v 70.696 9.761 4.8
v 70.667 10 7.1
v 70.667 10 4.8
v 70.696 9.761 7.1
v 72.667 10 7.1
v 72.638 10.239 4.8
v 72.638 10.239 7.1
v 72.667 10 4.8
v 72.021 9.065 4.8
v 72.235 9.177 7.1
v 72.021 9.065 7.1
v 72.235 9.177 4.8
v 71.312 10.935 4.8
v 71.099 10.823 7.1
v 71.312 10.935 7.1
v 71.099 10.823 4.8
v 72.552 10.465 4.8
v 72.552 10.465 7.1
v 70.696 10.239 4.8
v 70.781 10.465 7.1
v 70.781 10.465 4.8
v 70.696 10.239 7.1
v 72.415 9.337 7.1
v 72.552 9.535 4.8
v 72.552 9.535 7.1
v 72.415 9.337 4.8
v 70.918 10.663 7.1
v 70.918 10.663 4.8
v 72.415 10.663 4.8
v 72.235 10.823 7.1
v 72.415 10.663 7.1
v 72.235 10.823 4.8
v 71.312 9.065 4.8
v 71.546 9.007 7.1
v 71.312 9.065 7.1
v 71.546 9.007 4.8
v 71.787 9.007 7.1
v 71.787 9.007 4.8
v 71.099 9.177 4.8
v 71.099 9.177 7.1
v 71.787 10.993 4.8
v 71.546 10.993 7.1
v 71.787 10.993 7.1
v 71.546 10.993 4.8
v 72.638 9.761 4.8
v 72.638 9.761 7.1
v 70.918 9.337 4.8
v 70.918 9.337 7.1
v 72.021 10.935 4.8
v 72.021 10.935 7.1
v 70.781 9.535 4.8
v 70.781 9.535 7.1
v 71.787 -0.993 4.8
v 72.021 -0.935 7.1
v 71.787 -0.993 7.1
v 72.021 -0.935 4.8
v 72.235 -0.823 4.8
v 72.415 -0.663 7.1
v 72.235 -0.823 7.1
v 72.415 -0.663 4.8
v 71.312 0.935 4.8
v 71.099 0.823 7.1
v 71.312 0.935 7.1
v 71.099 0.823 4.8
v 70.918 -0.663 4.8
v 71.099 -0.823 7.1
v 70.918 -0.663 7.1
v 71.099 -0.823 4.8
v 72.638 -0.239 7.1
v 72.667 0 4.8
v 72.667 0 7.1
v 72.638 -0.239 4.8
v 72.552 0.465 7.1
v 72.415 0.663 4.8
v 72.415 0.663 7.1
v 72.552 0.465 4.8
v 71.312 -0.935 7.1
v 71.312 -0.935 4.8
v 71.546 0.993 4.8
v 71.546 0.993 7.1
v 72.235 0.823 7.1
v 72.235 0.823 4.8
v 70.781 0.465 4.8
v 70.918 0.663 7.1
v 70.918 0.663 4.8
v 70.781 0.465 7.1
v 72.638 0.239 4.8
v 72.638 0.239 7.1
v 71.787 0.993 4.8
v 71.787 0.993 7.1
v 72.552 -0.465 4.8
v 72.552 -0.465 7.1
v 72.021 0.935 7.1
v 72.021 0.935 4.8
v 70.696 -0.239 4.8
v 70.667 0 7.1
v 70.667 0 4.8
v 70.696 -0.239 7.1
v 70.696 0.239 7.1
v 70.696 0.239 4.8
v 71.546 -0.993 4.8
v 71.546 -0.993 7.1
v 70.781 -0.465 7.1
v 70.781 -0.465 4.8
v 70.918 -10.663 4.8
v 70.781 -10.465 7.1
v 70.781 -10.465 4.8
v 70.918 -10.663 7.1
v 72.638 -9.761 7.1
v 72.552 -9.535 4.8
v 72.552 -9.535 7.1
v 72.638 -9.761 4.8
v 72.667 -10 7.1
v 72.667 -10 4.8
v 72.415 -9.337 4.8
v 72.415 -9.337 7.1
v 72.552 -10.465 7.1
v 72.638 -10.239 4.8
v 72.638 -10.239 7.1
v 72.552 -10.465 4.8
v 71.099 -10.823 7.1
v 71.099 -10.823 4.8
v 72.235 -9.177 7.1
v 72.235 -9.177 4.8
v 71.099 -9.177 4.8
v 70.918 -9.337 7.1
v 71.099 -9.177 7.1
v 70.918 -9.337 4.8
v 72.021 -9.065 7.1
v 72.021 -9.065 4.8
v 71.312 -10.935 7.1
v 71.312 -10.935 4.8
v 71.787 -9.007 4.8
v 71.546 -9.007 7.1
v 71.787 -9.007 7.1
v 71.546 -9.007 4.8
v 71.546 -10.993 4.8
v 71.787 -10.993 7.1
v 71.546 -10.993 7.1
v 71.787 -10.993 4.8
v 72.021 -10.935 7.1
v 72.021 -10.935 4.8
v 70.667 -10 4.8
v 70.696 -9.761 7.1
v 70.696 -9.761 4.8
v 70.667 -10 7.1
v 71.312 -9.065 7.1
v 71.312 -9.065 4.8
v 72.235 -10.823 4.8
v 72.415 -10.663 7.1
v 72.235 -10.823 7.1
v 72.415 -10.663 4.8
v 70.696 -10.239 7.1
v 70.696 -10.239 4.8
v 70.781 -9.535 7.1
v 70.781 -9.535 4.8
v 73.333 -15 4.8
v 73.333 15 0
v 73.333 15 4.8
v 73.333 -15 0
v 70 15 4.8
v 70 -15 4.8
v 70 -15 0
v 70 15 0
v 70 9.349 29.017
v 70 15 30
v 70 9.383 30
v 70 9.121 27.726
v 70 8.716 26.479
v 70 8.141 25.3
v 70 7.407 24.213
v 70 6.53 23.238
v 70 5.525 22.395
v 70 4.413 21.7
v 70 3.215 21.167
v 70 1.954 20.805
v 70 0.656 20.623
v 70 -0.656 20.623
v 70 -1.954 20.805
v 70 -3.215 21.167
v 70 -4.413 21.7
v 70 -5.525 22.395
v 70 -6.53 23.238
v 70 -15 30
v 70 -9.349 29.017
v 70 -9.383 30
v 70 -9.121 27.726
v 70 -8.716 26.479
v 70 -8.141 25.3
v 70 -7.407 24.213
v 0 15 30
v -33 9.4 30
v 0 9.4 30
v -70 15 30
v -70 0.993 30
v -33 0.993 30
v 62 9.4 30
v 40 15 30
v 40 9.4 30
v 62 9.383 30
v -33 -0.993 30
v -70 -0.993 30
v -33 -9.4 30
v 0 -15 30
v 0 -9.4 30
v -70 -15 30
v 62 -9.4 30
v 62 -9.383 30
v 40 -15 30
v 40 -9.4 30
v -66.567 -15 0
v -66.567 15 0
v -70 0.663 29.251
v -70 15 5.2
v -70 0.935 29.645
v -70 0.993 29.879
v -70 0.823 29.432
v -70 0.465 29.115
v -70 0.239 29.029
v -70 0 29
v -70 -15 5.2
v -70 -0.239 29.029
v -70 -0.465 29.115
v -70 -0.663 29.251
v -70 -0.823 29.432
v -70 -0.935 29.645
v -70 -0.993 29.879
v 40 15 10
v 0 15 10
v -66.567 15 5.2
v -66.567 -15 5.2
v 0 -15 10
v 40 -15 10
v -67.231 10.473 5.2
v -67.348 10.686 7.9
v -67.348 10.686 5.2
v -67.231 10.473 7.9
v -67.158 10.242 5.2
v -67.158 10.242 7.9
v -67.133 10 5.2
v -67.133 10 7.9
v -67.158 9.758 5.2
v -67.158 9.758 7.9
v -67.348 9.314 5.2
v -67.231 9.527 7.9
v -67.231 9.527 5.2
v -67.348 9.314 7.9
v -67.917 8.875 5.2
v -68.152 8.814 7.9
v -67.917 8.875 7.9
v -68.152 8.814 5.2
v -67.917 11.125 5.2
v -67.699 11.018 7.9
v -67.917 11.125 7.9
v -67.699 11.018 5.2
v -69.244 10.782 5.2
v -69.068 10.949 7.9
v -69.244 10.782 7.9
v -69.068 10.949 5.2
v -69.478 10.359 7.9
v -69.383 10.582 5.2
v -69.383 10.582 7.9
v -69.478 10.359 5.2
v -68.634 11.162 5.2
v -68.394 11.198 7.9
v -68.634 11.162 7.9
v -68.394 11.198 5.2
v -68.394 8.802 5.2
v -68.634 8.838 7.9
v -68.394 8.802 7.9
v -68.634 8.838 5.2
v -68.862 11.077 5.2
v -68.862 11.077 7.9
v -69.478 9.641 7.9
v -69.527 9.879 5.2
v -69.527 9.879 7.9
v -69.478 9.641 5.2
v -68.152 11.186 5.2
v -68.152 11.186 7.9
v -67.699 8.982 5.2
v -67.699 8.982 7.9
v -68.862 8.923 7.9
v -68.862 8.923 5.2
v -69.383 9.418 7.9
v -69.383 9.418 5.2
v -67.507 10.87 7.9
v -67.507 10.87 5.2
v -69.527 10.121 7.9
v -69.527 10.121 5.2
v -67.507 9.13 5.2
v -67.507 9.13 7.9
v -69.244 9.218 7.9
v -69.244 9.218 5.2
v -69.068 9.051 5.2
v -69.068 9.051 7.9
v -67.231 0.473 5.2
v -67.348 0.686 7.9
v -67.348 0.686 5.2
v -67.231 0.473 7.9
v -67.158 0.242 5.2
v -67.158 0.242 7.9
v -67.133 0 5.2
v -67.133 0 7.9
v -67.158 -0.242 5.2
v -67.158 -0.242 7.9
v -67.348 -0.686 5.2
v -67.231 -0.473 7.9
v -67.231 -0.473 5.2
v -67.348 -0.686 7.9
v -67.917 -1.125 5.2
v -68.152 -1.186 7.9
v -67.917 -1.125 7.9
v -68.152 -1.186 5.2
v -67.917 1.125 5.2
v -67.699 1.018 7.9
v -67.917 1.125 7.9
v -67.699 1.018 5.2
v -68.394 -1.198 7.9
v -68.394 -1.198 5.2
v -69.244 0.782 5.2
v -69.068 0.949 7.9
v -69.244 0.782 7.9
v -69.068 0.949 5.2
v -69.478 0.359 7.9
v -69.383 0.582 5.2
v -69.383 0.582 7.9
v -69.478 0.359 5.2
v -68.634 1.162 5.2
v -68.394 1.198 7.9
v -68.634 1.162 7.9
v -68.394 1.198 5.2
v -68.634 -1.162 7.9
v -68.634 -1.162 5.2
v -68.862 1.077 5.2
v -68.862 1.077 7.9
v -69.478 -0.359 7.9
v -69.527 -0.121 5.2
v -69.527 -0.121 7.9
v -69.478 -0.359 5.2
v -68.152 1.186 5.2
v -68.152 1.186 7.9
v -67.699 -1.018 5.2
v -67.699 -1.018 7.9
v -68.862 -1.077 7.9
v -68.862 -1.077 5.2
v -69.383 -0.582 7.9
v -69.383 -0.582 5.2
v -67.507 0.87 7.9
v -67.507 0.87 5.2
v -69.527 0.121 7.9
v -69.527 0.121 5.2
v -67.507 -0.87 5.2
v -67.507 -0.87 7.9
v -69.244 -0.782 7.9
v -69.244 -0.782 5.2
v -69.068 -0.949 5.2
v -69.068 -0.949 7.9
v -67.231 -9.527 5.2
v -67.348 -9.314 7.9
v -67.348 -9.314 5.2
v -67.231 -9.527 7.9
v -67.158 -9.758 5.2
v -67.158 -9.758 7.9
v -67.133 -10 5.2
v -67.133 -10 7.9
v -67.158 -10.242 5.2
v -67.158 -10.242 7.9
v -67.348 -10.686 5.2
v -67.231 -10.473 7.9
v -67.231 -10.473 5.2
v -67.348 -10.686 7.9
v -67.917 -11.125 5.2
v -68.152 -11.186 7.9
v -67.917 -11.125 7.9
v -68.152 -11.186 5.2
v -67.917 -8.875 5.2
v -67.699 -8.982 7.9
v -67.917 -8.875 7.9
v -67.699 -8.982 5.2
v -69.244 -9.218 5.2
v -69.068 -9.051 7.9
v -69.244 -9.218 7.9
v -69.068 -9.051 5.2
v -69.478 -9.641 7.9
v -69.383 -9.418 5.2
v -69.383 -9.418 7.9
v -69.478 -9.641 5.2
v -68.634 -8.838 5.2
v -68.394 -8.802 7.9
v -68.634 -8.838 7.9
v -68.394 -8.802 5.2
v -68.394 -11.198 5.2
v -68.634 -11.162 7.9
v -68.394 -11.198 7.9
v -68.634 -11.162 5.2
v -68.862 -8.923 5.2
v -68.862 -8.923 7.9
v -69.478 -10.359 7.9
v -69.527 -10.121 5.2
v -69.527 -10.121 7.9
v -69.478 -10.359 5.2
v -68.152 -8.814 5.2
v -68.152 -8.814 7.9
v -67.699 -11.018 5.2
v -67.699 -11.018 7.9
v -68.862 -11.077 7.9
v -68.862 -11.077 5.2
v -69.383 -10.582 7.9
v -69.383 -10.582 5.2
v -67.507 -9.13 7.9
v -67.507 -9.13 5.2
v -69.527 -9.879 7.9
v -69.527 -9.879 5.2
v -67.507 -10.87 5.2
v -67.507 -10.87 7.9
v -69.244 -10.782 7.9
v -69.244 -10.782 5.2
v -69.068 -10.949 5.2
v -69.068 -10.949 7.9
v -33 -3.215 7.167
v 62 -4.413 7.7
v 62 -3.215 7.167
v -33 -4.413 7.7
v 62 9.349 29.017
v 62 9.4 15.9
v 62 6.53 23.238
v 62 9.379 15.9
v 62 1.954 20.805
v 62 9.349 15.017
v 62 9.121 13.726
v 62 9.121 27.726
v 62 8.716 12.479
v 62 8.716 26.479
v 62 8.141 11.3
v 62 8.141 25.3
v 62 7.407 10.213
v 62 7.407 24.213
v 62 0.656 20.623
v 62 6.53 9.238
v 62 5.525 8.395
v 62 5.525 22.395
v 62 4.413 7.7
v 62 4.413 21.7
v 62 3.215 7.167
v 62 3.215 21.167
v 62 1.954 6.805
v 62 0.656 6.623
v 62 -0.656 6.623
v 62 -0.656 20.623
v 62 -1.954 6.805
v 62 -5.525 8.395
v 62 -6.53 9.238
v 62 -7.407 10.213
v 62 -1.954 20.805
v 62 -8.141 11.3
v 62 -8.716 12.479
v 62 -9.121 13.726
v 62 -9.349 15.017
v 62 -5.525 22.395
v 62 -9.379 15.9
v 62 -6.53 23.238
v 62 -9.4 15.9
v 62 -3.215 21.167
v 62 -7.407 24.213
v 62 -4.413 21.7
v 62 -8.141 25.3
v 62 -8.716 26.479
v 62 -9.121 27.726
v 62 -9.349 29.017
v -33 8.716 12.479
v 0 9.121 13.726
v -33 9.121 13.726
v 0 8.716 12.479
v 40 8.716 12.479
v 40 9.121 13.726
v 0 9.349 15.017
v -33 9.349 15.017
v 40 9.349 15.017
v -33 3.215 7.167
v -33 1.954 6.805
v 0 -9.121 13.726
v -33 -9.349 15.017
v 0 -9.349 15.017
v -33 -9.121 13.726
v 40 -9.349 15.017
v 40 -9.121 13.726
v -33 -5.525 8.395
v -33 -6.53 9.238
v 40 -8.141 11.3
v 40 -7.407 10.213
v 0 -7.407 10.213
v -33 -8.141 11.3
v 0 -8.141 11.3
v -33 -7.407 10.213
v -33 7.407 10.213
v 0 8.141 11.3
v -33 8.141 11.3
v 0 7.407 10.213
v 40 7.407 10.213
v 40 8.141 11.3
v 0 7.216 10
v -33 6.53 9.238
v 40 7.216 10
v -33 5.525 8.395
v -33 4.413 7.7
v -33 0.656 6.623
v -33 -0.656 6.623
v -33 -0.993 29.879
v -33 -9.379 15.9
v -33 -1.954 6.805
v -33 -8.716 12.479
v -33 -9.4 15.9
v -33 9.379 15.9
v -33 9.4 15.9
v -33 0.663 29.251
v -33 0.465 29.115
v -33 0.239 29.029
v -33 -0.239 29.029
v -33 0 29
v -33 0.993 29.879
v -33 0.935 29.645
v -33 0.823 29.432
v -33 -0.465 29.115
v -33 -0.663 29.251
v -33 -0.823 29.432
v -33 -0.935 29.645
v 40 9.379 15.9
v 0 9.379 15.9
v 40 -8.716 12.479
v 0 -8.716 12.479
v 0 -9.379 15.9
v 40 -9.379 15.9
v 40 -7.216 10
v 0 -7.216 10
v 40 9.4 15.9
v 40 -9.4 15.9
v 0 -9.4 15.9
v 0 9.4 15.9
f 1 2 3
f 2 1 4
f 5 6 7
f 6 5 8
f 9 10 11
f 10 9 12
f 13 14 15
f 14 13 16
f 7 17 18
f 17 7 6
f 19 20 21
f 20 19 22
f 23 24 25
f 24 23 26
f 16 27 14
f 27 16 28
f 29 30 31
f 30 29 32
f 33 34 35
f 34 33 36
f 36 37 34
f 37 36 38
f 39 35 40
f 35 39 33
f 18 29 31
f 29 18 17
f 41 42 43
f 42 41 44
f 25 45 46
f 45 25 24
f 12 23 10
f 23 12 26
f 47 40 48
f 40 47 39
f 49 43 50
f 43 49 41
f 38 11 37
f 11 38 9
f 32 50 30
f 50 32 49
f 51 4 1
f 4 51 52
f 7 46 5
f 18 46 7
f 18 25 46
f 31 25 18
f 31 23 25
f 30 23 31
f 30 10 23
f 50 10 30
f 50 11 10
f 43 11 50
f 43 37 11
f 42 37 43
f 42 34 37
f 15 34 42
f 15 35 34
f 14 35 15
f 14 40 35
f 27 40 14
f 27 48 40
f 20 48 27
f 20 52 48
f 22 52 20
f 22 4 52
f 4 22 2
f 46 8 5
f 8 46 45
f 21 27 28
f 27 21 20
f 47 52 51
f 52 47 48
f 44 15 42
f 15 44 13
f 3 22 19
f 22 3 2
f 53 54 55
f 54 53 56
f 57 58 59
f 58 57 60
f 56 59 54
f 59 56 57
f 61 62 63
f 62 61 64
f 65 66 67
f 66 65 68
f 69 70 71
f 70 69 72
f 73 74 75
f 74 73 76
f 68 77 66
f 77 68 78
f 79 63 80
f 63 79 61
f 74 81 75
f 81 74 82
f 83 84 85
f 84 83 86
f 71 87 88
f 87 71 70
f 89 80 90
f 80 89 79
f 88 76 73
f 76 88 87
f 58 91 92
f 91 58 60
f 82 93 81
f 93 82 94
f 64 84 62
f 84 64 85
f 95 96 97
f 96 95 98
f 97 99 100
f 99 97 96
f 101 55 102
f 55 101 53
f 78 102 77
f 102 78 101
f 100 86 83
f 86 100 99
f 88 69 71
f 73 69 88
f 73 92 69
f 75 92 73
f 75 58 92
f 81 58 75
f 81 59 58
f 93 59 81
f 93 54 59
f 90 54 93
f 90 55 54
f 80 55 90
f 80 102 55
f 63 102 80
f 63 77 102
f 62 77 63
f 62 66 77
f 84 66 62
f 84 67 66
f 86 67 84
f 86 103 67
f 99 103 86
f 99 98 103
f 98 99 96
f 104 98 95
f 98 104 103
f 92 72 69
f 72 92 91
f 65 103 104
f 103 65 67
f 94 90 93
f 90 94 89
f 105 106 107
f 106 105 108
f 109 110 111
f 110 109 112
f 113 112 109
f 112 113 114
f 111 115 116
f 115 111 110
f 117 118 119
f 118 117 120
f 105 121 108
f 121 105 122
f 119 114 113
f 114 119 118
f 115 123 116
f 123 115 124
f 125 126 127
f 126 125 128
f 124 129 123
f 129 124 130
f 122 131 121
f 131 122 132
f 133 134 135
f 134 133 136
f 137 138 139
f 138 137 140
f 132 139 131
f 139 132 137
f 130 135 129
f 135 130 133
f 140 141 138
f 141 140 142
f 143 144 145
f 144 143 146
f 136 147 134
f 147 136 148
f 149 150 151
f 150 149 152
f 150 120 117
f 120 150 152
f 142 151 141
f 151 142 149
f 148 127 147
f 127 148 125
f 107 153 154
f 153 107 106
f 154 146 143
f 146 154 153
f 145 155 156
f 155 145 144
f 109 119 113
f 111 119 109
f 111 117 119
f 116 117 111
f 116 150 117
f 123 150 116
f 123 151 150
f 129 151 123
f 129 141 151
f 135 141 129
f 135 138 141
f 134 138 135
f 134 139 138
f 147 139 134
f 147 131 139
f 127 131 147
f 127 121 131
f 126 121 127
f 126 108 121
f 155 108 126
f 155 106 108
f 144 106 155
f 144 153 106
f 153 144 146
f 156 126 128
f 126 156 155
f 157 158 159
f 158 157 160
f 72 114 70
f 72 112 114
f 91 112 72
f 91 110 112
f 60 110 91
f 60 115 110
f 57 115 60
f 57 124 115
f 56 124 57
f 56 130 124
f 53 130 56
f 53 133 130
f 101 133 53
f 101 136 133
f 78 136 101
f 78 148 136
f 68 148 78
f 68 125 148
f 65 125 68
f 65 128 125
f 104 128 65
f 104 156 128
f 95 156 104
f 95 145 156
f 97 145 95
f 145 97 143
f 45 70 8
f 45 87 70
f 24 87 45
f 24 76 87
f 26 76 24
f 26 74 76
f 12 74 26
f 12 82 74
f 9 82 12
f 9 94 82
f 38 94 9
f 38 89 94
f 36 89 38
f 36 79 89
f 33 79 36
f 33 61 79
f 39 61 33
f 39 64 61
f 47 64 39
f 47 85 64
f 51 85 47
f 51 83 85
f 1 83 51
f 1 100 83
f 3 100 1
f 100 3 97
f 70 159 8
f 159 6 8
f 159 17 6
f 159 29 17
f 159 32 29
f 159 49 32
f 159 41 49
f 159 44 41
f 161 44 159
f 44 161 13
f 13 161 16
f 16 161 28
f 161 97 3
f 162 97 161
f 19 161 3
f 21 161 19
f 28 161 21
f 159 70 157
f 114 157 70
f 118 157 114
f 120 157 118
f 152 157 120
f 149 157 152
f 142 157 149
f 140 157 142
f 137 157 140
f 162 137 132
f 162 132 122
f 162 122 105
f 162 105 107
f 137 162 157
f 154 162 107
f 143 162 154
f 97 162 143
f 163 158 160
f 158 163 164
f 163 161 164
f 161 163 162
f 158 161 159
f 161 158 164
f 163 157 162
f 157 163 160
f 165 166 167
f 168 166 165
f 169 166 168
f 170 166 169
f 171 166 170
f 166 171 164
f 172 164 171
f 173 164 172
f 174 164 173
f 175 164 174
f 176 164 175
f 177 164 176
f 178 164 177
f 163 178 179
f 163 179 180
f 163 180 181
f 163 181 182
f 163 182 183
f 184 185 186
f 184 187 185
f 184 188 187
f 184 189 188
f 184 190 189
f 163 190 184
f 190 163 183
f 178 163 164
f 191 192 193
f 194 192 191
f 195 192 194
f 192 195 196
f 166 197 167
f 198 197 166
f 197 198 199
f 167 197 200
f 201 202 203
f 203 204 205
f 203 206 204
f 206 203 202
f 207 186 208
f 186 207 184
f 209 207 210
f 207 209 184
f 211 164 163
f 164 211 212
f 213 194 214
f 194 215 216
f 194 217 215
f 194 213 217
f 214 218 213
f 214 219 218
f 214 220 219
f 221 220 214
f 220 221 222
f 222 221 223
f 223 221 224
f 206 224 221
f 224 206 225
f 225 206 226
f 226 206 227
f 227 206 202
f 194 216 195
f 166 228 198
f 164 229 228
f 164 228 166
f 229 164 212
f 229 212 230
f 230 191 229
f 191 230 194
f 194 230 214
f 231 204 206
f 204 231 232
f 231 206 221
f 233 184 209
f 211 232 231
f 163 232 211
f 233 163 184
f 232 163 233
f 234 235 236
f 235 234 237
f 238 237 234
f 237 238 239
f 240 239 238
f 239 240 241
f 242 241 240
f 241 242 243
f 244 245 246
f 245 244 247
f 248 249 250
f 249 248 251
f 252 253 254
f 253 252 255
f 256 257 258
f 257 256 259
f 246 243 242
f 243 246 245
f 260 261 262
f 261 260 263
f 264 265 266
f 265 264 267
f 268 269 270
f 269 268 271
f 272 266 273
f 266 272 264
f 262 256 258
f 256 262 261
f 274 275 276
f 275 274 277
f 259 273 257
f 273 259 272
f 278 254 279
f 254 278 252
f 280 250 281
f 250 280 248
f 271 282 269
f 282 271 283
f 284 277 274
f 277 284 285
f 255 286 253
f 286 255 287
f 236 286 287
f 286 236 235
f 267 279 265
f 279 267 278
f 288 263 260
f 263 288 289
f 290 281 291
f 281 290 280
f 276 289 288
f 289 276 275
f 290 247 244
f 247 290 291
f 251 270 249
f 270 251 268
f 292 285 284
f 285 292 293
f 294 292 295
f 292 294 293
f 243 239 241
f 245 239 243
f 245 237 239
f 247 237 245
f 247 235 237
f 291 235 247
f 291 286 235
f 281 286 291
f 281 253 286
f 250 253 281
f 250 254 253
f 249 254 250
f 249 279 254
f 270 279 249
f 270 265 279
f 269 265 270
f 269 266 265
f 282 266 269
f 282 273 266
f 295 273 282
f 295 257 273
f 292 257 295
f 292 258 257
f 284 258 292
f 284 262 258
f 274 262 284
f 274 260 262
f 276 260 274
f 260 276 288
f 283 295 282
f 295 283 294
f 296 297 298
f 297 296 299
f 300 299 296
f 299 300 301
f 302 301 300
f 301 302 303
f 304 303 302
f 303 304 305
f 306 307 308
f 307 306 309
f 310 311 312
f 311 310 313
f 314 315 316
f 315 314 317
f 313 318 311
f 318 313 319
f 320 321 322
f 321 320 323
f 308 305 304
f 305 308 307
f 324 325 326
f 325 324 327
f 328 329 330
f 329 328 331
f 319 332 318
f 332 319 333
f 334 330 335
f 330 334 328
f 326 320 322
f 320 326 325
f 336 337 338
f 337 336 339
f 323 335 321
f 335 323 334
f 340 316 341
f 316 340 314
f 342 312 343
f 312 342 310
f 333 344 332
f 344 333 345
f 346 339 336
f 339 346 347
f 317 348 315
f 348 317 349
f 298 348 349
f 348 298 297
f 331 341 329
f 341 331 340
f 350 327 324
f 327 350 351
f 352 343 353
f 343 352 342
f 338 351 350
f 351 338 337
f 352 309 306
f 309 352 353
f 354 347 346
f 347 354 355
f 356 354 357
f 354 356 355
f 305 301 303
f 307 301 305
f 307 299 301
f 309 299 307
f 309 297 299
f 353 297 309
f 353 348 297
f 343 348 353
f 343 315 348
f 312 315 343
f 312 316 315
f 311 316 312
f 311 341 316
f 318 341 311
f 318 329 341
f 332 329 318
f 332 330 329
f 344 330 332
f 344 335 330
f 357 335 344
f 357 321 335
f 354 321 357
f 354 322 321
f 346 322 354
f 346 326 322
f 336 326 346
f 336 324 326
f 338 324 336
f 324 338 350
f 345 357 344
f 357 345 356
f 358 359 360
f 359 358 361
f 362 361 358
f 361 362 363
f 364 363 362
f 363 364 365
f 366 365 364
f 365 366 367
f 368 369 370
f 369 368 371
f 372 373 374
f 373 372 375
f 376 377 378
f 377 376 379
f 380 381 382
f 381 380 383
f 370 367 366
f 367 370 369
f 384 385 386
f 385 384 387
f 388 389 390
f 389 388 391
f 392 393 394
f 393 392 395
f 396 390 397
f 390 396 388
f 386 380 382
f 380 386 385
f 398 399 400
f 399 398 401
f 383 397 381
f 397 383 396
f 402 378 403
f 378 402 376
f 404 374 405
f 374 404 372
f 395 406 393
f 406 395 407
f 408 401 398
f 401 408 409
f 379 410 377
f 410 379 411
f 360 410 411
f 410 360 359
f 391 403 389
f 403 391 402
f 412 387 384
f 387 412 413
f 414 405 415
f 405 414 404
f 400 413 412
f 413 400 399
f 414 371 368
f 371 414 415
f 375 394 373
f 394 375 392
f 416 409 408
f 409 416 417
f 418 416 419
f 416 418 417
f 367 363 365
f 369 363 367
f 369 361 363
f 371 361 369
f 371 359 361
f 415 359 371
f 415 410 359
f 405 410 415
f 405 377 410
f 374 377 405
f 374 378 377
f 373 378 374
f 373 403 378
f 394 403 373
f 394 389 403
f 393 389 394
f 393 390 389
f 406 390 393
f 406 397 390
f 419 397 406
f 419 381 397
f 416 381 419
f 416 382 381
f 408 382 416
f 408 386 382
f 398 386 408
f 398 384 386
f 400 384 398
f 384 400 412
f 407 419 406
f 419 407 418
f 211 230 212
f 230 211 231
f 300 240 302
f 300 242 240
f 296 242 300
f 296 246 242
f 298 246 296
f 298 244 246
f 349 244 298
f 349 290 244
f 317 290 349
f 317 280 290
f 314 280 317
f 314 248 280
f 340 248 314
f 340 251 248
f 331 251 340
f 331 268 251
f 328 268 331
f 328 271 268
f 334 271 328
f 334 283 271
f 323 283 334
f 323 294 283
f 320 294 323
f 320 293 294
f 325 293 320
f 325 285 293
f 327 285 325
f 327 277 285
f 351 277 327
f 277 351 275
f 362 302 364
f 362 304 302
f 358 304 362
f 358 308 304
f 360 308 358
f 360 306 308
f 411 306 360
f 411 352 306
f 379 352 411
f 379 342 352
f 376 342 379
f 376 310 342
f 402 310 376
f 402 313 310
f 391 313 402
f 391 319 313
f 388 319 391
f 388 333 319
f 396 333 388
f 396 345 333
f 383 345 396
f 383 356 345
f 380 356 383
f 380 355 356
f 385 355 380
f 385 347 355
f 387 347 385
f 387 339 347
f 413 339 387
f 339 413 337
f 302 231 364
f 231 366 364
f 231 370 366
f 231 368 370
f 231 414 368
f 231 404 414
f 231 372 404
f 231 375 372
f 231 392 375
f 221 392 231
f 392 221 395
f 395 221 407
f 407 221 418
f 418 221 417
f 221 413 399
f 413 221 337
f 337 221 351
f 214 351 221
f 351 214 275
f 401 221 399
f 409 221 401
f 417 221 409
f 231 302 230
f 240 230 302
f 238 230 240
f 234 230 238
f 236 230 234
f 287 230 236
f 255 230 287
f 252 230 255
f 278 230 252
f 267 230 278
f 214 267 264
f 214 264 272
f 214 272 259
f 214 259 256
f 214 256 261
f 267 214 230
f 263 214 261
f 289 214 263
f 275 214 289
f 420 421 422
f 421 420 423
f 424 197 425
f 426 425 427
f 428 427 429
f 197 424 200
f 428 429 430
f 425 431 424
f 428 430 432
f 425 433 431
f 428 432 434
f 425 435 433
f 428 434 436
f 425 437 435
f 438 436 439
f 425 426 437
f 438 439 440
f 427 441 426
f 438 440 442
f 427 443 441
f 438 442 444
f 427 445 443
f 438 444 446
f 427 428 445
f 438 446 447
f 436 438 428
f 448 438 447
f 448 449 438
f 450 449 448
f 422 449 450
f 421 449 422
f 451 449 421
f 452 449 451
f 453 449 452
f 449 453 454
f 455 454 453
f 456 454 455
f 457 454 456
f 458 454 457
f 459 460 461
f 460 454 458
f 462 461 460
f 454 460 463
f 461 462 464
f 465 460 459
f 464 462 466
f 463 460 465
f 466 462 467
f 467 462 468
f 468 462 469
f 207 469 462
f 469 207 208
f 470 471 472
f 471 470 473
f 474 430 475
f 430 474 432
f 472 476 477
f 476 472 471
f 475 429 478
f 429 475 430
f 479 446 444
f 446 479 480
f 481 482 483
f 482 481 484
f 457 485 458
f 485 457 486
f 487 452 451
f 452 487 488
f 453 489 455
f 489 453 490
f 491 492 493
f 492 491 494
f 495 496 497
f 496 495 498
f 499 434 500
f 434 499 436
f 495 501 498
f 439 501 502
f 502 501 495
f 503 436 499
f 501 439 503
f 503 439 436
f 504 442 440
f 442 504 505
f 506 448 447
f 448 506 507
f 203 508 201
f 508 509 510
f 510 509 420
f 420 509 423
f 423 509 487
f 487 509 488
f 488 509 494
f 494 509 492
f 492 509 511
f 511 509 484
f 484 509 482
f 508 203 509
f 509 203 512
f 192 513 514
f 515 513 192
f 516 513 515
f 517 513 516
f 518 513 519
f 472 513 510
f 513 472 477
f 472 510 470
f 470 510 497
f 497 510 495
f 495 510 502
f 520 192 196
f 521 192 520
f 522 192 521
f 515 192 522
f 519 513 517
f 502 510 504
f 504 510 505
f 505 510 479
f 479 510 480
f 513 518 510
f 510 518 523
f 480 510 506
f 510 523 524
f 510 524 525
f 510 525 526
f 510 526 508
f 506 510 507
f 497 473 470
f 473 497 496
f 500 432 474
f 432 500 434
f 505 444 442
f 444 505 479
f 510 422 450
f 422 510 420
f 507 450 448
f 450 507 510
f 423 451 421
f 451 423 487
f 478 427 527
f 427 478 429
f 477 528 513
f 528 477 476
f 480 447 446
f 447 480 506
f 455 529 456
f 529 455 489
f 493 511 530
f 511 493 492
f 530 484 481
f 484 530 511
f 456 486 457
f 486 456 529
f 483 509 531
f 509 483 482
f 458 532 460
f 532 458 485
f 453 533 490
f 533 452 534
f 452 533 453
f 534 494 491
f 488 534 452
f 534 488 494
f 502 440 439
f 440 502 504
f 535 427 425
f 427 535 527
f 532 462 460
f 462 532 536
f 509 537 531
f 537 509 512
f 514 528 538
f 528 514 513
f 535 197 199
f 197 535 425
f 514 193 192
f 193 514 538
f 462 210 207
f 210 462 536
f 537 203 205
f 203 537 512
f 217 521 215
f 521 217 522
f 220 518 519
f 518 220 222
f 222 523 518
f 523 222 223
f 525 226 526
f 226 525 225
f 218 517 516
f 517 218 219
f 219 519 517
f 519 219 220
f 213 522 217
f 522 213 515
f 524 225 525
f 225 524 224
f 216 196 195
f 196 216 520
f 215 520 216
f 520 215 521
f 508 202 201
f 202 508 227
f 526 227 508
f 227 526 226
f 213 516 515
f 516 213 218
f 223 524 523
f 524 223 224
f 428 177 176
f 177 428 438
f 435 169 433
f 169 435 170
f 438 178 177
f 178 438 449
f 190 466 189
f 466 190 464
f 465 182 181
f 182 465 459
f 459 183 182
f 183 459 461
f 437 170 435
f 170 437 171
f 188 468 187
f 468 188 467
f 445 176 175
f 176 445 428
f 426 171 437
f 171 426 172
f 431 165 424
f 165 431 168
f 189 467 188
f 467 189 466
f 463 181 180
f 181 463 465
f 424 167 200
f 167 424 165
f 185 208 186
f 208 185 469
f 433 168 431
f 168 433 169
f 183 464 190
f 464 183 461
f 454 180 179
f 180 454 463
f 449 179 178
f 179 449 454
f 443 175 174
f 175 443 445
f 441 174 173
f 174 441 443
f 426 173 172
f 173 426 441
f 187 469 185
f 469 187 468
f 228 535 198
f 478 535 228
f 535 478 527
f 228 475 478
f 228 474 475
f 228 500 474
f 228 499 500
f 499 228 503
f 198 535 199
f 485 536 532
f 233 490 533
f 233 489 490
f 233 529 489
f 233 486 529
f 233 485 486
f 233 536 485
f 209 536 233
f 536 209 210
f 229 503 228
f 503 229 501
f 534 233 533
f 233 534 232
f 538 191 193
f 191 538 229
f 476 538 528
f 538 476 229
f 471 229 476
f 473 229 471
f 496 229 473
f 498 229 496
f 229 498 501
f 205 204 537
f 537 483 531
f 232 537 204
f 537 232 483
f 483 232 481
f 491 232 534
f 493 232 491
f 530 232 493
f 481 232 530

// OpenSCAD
// file: ../base.scad
// The x-axis has the connection to the other units
// There is one connection peg per x
// Minimum unit is x=1, y=1, z=1
// If you have x=1, then the x-axis will be extended 
// with 1/3 for the connectors 
// the female version will can still be used and therefore
// counted within the unit

/* [Setup Parameters] */
$fa = 8;
$fs = 0.25;


module base(x,y,z) {
    u = 10;
    t = u;

    width = u*x;
    depth = u*y;
    height = t*z;

    margin = 0.2;

    male_connection_d = 2;
    female_connection_d = male_connection_d+margin*2;
    connector_width = u/3;
    connector_height = t/2;

    module connector(width, height, cylinder_height, cylinder_d) {
        translate([0, 0, 0])
        union() {
            translate([0, 0, height/2])
            cube([width, depth, height], center=true);
            for (i = [1:1:y]) {
                translate([0, depth/2+u/2-(u)*i, height-0.1])
                cylinder(h=cylinder_height+0.1, d=cylinder_d);
            }
        }
    }

    module male_connector() {
        width = connector_width;
        height = connector_height-margin;
        cylinder_height = connector_height/2-margin;
        cylinder_d = male_connection_d;

        connector(width, height, cylinder_height, cylinder_d);
    }

    module inverted_female_connecor() {
        width = connector_width+margin;
        height = connector_height+margin;
        cylinder_height = connector_height/2+margin;
        cylinder_d = female_connection_d;

        connector(width, height, cylinder_height, cylinder_d);
    }

    difference() {
        union() {
            translate([0, 0, height/2])
            cube([width, depth, height], center=true);
            translate([width/2+connector_width/2, 0, 0])
            male_connector();
        }
        union() {
            translate([-width/2+connector_width/2, 0, 0])
            inverted_female_connecor();
        }
    }
}


//base(2,7,2);

module connector(y) {
    u = 10;
}
// main file
include <../base.scad>

flux_d = 18.8;

xunits = 14;
yunits = 3;
zunits = 3;

difference() {
    base(xunits,yunits,zunits);

    union() {
        // presser
        translate([70-8, 0, 16])
        rotate([0,-90,0])
        cylinder(h=95, d=flux_d);

        // to access presser 
        translate([22.5-8, 0, 30-flux_d/4])
        cube([95, flux_d, flux_d], center=true);

        // syringe
        translate([40, 0, 30])
        rotate([0,-90,0])
        cylinder(h=110, d=2);

        // flux
        translate([70,0,30])
        rotate([0,-90,0])
        cylinder(h=40, d=flux_d);

        // finger space
        translate([20,0,20])
        cube([40, 30, 20], center=true);
    }
}
